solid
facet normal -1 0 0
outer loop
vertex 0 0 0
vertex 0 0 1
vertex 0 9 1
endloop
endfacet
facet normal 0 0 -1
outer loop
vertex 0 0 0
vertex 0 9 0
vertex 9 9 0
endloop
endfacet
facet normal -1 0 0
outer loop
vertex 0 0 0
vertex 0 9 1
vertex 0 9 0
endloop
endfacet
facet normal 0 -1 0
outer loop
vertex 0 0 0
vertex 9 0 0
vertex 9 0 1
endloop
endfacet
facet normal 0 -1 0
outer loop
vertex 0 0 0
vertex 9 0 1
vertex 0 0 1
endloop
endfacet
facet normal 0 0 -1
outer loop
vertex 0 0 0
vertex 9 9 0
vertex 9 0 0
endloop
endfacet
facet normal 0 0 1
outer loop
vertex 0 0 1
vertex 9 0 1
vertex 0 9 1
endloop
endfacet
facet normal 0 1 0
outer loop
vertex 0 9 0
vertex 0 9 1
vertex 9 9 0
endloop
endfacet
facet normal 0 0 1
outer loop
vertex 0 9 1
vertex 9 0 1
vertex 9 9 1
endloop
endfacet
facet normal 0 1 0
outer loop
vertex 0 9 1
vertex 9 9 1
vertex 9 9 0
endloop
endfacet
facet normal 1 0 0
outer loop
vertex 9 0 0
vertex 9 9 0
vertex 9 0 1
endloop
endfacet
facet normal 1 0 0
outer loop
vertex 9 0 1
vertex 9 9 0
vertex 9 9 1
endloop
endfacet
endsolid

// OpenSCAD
/* Warning, this is a very basic generator with a lot of approximation 
input data : [VQFN, THB, 9x9x1mm, 64, , A, C04-21437A]
generated by com.zoubworld.electronics.cad.model3d.Basic
Date : Sun Feb 15 10:50:49 CET 2026
*/

//body
color("black")
translate([0,0,0])
cube([9.0,9.0,1.0], center=false);
